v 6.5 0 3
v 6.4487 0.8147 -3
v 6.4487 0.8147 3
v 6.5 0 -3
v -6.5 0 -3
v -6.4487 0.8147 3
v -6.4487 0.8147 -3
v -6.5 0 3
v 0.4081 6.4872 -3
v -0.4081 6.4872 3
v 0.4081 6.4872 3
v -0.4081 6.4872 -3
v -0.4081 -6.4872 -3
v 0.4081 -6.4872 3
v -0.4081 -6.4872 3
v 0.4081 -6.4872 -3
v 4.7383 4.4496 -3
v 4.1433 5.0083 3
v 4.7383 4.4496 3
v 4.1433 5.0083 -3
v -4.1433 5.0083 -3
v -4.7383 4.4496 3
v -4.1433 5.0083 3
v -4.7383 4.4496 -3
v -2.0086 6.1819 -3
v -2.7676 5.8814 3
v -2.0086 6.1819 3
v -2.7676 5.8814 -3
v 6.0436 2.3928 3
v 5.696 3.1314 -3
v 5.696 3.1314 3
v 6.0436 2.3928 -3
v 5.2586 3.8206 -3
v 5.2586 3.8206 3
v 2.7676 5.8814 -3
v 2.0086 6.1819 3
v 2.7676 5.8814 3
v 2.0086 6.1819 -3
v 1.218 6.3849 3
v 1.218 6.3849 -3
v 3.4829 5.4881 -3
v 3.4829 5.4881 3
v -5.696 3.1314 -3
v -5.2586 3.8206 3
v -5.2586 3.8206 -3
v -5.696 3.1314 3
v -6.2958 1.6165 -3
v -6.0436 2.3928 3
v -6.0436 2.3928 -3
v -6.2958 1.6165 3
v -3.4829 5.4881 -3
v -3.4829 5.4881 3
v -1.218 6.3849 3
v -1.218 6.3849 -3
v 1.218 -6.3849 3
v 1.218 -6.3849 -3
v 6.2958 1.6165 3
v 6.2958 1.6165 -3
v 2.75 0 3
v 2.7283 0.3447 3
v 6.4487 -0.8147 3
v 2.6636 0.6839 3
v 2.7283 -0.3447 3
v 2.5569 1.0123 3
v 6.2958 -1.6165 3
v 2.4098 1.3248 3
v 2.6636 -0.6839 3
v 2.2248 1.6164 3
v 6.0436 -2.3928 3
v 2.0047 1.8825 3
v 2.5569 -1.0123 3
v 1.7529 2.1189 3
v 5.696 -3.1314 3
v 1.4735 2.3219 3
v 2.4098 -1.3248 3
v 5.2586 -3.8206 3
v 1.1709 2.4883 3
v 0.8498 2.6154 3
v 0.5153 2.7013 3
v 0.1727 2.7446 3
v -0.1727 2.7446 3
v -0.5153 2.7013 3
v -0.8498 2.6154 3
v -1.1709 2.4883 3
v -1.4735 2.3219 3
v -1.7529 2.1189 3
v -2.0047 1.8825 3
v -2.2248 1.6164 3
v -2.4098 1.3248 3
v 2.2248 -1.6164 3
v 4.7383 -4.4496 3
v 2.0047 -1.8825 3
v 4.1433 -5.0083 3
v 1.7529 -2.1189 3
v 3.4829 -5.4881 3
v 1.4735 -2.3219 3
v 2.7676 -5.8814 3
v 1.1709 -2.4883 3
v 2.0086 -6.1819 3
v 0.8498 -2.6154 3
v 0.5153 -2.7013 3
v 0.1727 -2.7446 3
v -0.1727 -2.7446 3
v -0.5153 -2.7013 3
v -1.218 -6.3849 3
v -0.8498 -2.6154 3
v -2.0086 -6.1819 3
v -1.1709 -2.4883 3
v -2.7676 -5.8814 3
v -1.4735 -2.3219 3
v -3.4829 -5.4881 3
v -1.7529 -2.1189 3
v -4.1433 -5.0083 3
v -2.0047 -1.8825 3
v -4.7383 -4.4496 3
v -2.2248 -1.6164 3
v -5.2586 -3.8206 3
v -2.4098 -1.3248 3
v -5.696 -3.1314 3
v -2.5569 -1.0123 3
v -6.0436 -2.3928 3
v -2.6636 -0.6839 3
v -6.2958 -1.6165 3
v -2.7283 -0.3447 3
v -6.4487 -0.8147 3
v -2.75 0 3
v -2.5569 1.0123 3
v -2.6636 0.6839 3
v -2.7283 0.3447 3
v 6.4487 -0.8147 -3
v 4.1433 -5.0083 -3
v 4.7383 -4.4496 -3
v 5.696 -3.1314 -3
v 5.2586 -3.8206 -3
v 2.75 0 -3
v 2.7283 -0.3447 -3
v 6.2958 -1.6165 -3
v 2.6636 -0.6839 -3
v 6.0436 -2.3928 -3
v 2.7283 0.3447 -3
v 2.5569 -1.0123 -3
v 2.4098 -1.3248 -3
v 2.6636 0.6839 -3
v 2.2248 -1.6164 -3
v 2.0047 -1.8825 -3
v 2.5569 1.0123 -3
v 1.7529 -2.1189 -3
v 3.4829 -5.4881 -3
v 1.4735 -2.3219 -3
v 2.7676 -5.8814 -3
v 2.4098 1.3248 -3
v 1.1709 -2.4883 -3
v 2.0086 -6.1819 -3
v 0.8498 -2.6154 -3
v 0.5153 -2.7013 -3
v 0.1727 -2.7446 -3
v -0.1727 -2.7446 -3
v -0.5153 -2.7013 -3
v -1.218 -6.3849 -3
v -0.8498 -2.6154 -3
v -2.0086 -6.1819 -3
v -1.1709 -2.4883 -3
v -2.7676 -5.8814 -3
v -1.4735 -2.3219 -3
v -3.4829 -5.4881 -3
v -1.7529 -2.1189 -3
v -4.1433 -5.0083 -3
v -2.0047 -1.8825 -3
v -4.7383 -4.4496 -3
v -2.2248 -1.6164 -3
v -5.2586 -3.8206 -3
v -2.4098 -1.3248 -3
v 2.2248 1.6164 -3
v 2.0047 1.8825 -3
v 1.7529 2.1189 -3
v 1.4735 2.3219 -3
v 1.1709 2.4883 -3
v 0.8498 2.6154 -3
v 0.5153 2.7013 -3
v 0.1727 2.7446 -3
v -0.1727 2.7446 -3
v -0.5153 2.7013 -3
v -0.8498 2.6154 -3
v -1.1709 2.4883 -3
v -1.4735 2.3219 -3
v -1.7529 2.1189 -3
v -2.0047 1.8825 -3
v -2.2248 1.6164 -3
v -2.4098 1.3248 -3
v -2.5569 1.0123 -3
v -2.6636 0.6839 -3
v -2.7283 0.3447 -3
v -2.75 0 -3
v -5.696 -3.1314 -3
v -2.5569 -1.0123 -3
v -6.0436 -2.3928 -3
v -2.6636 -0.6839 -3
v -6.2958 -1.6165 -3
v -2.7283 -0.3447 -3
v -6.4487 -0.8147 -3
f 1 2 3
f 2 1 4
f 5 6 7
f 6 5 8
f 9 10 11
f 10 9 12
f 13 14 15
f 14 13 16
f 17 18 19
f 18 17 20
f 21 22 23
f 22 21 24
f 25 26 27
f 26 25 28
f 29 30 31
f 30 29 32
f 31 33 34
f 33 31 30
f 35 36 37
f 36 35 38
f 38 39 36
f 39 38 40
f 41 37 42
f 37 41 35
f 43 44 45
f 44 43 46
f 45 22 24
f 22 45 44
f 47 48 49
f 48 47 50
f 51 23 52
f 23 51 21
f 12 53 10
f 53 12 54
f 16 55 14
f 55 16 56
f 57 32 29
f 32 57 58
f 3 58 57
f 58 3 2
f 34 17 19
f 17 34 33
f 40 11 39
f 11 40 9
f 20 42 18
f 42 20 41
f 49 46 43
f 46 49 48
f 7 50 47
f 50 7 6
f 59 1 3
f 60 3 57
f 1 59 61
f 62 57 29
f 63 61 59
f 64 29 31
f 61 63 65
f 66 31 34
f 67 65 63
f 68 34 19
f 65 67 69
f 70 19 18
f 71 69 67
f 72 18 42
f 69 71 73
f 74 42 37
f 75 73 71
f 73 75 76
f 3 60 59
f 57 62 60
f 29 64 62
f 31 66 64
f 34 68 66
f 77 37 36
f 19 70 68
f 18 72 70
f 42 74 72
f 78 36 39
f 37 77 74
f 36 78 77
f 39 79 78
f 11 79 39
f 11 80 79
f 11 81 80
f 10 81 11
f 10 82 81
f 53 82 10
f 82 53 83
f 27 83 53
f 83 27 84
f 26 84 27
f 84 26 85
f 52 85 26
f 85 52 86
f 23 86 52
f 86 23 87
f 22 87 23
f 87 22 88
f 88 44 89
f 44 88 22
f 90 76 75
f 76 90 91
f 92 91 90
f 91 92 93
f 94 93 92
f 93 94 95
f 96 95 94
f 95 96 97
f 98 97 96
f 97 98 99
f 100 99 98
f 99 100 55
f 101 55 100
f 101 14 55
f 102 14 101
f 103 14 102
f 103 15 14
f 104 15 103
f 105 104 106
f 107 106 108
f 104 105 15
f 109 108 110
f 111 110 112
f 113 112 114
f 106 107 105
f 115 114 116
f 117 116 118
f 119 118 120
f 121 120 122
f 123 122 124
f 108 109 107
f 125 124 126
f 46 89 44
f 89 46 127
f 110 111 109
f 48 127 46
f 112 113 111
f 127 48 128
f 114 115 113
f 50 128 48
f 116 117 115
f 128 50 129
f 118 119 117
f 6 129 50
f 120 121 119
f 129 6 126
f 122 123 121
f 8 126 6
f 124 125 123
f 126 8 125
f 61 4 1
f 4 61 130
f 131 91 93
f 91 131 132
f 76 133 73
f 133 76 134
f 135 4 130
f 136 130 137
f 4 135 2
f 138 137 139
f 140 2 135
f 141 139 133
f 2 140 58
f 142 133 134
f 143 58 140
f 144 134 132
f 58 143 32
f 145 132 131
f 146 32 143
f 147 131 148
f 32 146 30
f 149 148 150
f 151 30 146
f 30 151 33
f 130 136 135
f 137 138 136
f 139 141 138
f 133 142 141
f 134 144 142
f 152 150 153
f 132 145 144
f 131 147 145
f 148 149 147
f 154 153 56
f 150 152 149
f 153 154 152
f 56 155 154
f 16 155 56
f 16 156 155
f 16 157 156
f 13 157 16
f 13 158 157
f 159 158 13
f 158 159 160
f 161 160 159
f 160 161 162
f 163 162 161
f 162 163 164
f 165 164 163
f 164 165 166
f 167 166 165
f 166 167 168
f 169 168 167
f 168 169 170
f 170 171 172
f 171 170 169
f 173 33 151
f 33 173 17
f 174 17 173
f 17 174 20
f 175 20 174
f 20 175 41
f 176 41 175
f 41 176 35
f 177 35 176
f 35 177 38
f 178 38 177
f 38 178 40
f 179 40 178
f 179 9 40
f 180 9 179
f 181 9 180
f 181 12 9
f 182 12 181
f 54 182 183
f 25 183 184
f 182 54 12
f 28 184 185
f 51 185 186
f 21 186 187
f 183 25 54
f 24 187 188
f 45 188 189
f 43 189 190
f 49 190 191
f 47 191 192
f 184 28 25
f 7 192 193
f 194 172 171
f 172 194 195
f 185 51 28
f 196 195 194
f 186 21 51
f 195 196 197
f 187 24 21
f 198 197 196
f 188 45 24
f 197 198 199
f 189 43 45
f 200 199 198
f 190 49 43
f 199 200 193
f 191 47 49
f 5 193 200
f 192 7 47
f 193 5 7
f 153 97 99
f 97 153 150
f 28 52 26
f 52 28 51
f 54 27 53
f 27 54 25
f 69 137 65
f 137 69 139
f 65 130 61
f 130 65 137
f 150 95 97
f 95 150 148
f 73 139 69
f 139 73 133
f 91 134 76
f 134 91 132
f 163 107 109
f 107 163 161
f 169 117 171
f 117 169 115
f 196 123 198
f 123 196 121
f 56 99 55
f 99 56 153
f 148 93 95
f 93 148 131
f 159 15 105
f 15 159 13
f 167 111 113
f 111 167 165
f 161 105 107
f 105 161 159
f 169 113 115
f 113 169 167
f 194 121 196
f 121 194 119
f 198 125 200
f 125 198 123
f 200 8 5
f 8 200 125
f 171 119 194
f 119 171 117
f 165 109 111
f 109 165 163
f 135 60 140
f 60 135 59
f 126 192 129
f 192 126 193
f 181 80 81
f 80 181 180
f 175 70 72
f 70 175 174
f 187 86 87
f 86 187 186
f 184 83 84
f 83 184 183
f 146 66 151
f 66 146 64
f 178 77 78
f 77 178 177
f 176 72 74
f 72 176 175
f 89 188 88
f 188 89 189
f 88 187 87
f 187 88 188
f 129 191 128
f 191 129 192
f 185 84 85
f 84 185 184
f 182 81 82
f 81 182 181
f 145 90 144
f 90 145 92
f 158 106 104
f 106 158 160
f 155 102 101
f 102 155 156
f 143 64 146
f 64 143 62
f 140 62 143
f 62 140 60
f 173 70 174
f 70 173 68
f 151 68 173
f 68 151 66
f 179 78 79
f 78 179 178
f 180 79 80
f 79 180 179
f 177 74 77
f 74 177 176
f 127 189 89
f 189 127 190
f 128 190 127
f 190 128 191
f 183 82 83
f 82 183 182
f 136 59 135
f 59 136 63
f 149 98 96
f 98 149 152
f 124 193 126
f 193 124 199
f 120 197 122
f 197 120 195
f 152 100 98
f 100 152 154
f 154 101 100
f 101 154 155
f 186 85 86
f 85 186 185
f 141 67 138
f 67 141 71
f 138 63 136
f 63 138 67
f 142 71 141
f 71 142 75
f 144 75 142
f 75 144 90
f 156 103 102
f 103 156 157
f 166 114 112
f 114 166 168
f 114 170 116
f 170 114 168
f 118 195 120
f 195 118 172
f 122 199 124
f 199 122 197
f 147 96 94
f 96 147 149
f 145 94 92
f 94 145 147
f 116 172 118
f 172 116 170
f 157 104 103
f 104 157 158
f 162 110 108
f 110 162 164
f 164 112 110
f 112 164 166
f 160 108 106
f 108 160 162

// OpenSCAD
$fn = 50;


difference() {
	union() {
		translate(v = [0, 0, -3.0000000000]) {
			cylinder(h = 6, r = 6.5000000000);
		}
	}
	union() {
		translate(v = [0, 0, -100.0000000000]) {
			cylinder(h = 200, r = 2.7500000000);
		}
	}
}
